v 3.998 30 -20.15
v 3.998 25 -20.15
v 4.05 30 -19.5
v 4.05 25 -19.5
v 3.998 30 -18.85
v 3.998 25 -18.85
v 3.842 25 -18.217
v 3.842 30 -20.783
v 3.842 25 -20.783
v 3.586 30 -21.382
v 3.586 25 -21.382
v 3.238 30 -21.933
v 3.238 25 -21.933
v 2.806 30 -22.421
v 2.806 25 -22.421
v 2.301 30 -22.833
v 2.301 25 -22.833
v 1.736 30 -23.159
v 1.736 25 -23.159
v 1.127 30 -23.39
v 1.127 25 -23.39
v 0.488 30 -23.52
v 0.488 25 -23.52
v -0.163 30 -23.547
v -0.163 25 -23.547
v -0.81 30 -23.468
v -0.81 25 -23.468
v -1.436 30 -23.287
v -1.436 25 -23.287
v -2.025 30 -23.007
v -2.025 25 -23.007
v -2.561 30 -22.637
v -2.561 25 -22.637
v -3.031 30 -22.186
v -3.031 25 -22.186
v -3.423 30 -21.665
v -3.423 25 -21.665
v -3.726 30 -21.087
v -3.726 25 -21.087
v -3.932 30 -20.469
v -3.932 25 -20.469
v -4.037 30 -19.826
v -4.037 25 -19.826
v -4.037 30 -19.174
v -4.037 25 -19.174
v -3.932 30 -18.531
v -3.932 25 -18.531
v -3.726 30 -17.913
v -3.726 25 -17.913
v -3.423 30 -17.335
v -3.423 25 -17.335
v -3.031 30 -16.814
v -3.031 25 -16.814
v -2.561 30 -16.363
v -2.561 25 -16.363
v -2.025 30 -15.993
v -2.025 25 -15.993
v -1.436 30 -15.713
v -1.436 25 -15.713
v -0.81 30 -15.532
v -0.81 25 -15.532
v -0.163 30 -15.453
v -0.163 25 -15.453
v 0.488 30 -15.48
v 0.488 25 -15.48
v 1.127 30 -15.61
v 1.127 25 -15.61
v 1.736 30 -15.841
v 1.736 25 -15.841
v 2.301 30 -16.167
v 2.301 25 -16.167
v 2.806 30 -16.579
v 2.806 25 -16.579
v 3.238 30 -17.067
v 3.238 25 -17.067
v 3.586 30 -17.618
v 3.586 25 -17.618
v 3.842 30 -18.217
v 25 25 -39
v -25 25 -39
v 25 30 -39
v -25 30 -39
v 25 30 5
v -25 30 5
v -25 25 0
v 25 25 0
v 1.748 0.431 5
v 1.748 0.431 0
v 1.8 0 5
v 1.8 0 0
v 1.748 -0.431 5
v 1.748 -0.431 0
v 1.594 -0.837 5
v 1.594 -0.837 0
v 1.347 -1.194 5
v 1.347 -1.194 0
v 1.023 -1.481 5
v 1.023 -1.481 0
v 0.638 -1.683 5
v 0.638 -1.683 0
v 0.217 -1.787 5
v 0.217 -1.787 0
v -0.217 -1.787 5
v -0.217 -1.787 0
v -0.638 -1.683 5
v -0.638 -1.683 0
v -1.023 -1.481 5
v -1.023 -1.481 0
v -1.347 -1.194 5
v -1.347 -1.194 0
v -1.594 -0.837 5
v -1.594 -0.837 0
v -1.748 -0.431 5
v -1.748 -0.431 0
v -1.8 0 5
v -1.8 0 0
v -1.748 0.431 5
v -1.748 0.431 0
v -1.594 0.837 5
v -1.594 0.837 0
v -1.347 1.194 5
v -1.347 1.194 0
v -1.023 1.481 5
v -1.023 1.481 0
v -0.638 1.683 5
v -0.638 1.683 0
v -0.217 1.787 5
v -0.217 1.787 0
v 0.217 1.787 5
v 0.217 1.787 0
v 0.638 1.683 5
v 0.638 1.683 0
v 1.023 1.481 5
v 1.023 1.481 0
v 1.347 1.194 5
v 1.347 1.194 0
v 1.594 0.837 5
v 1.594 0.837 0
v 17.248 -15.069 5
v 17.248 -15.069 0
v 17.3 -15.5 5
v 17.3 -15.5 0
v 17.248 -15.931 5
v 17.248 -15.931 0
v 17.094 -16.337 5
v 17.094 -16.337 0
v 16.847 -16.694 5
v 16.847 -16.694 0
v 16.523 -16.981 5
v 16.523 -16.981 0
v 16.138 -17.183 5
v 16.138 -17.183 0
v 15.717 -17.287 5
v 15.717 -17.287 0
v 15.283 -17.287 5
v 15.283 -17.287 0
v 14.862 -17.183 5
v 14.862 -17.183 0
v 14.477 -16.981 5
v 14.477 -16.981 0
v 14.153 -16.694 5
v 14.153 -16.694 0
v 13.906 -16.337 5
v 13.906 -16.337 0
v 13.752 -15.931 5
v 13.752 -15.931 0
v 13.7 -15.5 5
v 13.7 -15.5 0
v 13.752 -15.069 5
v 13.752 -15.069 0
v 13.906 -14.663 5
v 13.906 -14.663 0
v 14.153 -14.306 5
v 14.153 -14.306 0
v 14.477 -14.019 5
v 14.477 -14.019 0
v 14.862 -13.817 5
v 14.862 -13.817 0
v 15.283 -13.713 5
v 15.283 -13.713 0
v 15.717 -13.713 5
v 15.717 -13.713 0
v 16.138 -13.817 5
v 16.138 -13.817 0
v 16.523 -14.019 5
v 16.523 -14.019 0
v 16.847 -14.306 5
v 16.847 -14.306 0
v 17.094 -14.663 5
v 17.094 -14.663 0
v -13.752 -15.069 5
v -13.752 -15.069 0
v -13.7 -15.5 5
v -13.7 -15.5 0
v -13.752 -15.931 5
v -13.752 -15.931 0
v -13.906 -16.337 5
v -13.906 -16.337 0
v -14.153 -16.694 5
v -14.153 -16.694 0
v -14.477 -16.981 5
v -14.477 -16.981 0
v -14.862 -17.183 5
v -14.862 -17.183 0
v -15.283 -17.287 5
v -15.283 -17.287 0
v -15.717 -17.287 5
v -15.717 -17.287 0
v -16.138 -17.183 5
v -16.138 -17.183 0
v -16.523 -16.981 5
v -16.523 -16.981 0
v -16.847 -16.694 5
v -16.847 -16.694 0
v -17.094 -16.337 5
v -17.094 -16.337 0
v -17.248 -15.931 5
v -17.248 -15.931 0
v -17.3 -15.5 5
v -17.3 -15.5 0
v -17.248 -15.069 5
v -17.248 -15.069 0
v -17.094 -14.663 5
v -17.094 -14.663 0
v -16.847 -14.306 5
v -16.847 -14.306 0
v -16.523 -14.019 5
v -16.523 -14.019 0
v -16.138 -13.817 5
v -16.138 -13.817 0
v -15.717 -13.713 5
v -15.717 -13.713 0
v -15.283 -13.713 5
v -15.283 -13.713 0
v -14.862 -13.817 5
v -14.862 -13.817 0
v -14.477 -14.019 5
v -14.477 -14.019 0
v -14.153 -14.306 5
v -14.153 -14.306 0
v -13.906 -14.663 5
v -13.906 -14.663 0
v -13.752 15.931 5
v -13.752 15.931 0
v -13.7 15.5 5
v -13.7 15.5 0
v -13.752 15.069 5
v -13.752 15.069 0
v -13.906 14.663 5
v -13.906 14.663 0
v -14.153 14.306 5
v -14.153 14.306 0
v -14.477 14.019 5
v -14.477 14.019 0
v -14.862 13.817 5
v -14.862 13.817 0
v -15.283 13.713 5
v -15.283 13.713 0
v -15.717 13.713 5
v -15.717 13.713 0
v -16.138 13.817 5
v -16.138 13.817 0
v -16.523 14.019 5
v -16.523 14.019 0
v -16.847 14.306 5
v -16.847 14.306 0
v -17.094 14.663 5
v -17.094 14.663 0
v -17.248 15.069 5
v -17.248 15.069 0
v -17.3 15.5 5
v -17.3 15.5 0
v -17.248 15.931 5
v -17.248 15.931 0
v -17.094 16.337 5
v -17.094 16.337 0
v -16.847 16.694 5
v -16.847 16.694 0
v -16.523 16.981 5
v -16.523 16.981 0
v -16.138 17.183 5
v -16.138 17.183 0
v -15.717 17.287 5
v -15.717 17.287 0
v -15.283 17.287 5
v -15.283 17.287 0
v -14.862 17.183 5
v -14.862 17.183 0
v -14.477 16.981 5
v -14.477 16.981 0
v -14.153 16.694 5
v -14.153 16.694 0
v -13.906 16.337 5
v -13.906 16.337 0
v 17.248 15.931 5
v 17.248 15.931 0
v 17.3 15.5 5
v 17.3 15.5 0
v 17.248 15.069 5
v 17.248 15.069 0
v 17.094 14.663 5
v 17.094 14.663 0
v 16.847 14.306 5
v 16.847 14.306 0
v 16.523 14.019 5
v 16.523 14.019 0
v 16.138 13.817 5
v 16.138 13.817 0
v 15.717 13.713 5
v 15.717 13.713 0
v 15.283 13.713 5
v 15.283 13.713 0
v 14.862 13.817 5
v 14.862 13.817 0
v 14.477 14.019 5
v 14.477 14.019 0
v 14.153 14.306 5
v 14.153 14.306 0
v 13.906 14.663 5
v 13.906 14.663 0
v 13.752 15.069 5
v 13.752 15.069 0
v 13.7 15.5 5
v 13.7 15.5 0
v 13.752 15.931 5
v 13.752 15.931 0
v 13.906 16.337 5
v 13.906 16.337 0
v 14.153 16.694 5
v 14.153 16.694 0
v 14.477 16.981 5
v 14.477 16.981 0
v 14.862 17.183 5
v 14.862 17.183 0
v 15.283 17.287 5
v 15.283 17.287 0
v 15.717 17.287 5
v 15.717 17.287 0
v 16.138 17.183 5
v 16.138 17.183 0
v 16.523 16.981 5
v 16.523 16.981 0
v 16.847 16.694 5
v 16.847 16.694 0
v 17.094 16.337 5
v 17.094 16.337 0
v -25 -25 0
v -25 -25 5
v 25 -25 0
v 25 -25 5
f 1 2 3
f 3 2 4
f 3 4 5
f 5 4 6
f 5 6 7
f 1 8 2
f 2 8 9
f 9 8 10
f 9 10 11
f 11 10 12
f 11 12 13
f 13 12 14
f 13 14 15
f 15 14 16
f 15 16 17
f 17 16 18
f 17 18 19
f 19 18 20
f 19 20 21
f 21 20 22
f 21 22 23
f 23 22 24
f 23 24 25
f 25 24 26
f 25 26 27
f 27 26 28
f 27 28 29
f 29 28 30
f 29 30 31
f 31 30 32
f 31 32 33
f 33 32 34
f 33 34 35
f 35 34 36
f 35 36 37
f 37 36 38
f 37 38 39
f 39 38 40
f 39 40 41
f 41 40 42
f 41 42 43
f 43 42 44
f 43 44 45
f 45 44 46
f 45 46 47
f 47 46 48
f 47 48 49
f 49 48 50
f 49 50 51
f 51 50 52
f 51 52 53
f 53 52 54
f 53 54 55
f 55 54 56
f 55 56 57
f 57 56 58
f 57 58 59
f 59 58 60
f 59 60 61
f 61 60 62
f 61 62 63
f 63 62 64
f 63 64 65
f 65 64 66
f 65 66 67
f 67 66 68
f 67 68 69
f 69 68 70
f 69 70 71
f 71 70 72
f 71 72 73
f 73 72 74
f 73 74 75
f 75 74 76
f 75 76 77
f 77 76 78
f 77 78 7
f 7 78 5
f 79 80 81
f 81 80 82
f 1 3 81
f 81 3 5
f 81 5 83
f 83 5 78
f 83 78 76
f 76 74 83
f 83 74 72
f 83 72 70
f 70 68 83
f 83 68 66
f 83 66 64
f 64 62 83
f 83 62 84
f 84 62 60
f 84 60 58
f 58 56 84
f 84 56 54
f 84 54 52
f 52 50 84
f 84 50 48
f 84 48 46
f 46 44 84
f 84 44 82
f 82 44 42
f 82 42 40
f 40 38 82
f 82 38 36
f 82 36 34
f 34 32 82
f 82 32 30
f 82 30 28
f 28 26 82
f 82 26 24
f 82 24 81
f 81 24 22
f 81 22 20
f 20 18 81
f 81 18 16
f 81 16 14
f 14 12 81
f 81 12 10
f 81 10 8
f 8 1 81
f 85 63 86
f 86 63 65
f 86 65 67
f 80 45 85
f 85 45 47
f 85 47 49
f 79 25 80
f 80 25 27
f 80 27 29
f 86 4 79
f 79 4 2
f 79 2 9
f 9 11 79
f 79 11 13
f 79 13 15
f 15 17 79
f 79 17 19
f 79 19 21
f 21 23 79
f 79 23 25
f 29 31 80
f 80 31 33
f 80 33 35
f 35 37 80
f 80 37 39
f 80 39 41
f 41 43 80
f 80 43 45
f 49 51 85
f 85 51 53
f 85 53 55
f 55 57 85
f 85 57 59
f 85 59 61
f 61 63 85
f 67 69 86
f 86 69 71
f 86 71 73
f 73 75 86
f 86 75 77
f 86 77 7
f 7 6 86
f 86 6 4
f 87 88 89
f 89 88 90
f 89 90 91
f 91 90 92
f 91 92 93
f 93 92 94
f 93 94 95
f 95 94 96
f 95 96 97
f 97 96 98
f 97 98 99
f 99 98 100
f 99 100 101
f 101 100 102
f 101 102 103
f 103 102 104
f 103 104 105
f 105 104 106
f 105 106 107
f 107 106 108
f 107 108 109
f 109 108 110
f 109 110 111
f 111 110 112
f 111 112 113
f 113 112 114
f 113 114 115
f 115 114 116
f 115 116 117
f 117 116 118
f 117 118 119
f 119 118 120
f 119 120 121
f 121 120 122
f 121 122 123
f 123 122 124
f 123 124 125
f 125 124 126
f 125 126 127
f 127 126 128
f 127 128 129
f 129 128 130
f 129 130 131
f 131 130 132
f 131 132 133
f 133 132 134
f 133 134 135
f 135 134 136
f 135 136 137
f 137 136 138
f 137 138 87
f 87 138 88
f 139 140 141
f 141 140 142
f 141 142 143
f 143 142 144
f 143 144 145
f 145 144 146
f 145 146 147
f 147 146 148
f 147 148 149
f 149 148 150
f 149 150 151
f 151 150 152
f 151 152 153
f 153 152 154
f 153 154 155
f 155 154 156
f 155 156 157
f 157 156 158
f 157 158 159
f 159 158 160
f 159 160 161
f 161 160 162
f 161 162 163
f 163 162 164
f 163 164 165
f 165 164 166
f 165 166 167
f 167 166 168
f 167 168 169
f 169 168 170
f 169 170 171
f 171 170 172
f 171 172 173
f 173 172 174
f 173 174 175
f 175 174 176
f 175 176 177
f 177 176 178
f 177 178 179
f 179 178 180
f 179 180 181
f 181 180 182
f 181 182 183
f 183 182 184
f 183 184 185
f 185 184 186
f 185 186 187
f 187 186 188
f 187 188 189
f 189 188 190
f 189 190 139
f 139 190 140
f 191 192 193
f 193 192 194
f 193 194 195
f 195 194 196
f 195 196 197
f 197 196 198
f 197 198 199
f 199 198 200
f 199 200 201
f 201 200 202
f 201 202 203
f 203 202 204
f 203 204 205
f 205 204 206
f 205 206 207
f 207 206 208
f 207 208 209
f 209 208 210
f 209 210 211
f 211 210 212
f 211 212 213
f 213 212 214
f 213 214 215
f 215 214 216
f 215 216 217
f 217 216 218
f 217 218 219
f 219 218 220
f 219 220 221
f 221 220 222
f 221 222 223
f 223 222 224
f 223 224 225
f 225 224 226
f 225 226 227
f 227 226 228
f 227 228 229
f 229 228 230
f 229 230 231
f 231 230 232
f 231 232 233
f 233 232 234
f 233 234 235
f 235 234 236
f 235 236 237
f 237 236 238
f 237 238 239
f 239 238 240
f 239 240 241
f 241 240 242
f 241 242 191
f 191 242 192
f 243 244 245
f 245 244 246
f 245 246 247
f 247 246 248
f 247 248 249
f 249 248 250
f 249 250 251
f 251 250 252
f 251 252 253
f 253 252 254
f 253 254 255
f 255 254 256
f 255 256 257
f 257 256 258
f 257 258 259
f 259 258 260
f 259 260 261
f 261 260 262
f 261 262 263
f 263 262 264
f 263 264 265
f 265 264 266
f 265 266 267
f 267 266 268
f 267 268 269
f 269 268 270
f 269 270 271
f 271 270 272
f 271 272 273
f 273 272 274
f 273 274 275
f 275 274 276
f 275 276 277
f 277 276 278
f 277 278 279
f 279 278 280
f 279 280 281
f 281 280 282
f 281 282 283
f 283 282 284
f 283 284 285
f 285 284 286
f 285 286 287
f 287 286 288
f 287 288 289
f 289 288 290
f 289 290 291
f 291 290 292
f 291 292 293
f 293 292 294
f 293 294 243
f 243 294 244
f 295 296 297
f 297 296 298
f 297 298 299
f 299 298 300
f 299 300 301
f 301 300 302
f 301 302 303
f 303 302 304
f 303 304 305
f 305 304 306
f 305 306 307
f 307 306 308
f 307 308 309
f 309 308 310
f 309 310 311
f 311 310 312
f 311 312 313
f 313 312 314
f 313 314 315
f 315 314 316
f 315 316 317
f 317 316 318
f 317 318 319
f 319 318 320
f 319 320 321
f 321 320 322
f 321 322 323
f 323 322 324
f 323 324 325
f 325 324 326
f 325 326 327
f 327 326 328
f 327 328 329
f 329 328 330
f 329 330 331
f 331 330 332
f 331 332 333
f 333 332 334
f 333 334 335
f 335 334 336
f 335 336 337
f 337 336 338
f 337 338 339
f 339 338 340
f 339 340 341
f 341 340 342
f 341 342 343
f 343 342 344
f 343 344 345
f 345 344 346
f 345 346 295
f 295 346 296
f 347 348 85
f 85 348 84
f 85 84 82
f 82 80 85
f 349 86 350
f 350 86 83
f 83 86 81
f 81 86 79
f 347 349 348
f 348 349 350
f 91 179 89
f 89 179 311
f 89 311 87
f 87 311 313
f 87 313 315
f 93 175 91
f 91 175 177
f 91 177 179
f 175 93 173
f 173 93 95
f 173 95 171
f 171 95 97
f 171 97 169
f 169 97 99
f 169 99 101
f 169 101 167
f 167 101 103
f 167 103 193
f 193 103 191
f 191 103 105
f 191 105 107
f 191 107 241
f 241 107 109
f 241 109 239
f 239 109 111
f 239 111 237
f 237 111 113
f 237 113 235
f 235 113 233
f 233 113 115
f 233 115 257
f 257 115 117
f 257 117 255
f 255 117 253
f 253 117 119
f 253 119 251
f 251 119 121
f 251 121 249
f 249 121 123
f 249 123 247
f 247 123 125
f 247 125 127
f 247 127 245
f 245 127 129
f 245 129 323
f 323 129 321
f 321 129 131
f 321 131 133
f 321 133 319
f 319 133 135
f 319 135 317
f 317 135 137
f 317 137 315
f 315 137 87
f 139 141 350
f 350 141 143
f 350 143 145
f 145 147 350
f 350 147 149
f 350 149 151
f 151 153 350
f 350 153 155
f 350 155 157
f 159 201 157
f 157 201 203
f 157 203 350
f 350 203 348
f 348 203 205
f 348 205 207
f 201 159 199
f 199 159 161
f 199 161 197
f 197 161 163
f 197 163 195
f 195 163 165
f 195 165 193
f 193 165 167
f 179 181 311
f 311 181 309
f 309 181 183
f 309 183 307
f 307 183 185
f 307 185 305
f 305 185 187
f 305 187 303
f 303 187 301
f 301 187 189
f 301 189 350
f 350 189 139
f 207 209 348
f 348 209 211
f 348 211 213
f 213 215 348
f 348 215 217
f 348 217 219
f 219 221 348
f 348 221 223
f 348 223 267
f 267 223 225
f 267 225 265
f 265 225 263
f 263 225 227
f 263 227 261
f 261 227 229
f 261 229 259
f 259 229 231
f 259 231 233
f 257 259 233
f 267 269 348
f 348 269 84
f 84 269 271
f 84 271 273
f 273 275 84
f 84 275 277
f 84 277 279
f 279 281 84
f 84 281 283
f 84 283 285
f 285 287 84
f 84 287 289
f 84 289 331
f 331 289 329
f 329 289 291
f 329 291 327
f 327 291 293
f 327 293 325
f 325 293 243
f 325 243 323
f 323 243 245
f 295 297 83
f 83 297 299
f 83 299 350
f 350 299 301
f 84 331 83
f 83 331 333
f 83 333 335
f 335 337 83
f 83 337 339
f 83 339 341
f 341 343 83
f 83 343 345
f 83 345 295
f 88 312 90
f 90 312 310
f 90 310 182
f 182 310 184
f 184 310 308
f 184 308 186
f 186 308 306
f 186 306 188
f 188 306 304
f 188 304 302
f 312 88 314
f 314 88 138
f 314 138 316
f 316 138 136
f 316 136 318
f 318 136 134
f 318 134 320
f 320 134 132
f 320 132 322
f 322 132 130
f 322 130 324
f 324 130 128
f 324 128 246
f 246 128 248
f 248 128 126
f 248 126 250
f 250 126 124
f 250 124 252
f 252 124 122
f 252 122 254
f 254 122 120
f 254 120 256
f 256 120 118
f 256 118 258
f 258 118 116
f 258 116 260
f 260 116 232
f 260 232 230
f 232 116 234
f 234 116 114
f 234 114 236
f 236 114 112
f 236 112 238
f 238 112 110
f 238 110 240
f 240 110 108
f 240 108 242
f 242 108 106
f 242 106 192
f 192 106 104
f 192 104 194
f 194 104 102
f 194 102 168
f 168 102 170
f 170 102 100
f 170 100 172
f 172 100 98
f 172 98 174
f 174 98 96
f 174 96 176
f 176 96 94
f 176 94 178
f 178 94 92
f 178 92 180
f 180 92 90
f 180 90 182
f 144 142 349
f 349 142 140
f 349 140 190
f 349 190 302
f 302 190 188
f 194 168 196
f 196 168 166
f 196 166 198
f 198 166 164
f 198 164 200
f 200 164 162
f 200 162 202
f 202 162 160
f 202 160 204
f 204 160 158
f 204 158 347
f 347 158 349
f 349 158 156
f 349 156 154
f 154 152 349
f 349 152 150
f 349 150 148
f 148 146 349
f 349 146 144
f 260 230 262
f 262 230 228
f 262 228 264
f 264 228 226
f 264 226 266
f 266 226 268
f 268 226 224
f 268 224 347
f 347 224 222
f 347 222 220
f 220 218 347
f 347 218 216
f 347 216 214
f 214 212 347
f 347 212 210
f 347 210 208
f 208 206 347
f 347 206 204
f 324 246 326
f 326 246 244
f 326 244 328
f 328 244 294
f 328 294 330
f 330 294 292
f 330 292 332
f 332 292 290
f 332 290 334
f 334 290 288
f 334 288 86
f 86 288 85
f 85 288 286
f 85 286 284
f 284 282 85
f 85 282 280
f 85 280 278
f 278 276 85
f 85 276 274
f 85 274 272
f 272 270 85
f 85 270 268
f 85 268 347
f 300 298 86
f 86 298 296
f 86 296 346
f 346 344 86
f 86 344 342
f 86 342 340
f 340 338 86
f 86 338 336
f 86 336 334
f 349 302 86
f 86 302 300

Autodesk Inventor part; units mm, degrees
ref_plane "YZ Plane" through (0, 0, 0) normal (1, 0, 0) x (0, 1, 0)
ref_plane "XZ Plane" through (0, 0, 0) normal (0, 1, 0) x (-1, 0, 0)
ref_plane "XY Plane" through (0, 0, 0) normal (0, 0, 1) x (1, 0, 0)
sketch "Эскиз1" plane through (0, 0, 0) normal (0, 0, 1) x (1, 0, 0)
  line L0 (-25, -25) -> (25, -25)
  line L1 (25, -25) -> (25, 25)
  line L2 (25, 25) -> (-25, 25)
  line L3 (-25, 25) -> (-25, -25)
  circle A0 centre (0, 0) radius 1.8
  circle A1 centre (15.5, 15.5) radius 1.8
  circle A2 centre (-15.5, 15.5) radius 1.8
  circle A3 centre (-15.5, -15.5) radius 1.8
  circle A4 centre (15.5, -15.5) radius 1.8
  dimension "d0" = 50
  dimension "d1" = 50
  dimension "d2" = 3.6
  dimension "d3" = 3.6
  dimension "d6" = 360
  dimension "d14" = 25
  dimension "d15" = 25
  dimension "d16" = 9.5
  dimension "d17" = 9.5
extrude "Выдавливание1" add sketch "Эскиз1" along normal blind 5
sketch "Эскиз2" plane through (-25, 25, 0) normal (0, 1, 0) x (1, 0, 0)
  line L0 (0, 0) -> (50, 0)
  line L1 (50, 0) -> (50, 39)
  line L2 (50, 39) -> (0, 39)
  line L3 (0, 39) -> (0, 0)
  line L4 (0, -5) -> (50, -5) projected
  line L5 (50, 0) -> (50, -5) projected
  line L6 (0, -5) -> (50, -5)
  line L7 (50, -5) -> (50, 0)
  line L8 (50, 0) -> (0, 0)
  line L9 (0, 0) -> (0, -5)
  circle A0 centre (25, 19.5) radius 4.05
  point P0 (25, 0)
  dimension "d10" = 50
  dimension "d11" = 39
  dimension "d19" = 8.1
extrude "Выдавливание3" add sketch "Эскиз2" along normal blind 5
properties part number "non_motor_holder"
